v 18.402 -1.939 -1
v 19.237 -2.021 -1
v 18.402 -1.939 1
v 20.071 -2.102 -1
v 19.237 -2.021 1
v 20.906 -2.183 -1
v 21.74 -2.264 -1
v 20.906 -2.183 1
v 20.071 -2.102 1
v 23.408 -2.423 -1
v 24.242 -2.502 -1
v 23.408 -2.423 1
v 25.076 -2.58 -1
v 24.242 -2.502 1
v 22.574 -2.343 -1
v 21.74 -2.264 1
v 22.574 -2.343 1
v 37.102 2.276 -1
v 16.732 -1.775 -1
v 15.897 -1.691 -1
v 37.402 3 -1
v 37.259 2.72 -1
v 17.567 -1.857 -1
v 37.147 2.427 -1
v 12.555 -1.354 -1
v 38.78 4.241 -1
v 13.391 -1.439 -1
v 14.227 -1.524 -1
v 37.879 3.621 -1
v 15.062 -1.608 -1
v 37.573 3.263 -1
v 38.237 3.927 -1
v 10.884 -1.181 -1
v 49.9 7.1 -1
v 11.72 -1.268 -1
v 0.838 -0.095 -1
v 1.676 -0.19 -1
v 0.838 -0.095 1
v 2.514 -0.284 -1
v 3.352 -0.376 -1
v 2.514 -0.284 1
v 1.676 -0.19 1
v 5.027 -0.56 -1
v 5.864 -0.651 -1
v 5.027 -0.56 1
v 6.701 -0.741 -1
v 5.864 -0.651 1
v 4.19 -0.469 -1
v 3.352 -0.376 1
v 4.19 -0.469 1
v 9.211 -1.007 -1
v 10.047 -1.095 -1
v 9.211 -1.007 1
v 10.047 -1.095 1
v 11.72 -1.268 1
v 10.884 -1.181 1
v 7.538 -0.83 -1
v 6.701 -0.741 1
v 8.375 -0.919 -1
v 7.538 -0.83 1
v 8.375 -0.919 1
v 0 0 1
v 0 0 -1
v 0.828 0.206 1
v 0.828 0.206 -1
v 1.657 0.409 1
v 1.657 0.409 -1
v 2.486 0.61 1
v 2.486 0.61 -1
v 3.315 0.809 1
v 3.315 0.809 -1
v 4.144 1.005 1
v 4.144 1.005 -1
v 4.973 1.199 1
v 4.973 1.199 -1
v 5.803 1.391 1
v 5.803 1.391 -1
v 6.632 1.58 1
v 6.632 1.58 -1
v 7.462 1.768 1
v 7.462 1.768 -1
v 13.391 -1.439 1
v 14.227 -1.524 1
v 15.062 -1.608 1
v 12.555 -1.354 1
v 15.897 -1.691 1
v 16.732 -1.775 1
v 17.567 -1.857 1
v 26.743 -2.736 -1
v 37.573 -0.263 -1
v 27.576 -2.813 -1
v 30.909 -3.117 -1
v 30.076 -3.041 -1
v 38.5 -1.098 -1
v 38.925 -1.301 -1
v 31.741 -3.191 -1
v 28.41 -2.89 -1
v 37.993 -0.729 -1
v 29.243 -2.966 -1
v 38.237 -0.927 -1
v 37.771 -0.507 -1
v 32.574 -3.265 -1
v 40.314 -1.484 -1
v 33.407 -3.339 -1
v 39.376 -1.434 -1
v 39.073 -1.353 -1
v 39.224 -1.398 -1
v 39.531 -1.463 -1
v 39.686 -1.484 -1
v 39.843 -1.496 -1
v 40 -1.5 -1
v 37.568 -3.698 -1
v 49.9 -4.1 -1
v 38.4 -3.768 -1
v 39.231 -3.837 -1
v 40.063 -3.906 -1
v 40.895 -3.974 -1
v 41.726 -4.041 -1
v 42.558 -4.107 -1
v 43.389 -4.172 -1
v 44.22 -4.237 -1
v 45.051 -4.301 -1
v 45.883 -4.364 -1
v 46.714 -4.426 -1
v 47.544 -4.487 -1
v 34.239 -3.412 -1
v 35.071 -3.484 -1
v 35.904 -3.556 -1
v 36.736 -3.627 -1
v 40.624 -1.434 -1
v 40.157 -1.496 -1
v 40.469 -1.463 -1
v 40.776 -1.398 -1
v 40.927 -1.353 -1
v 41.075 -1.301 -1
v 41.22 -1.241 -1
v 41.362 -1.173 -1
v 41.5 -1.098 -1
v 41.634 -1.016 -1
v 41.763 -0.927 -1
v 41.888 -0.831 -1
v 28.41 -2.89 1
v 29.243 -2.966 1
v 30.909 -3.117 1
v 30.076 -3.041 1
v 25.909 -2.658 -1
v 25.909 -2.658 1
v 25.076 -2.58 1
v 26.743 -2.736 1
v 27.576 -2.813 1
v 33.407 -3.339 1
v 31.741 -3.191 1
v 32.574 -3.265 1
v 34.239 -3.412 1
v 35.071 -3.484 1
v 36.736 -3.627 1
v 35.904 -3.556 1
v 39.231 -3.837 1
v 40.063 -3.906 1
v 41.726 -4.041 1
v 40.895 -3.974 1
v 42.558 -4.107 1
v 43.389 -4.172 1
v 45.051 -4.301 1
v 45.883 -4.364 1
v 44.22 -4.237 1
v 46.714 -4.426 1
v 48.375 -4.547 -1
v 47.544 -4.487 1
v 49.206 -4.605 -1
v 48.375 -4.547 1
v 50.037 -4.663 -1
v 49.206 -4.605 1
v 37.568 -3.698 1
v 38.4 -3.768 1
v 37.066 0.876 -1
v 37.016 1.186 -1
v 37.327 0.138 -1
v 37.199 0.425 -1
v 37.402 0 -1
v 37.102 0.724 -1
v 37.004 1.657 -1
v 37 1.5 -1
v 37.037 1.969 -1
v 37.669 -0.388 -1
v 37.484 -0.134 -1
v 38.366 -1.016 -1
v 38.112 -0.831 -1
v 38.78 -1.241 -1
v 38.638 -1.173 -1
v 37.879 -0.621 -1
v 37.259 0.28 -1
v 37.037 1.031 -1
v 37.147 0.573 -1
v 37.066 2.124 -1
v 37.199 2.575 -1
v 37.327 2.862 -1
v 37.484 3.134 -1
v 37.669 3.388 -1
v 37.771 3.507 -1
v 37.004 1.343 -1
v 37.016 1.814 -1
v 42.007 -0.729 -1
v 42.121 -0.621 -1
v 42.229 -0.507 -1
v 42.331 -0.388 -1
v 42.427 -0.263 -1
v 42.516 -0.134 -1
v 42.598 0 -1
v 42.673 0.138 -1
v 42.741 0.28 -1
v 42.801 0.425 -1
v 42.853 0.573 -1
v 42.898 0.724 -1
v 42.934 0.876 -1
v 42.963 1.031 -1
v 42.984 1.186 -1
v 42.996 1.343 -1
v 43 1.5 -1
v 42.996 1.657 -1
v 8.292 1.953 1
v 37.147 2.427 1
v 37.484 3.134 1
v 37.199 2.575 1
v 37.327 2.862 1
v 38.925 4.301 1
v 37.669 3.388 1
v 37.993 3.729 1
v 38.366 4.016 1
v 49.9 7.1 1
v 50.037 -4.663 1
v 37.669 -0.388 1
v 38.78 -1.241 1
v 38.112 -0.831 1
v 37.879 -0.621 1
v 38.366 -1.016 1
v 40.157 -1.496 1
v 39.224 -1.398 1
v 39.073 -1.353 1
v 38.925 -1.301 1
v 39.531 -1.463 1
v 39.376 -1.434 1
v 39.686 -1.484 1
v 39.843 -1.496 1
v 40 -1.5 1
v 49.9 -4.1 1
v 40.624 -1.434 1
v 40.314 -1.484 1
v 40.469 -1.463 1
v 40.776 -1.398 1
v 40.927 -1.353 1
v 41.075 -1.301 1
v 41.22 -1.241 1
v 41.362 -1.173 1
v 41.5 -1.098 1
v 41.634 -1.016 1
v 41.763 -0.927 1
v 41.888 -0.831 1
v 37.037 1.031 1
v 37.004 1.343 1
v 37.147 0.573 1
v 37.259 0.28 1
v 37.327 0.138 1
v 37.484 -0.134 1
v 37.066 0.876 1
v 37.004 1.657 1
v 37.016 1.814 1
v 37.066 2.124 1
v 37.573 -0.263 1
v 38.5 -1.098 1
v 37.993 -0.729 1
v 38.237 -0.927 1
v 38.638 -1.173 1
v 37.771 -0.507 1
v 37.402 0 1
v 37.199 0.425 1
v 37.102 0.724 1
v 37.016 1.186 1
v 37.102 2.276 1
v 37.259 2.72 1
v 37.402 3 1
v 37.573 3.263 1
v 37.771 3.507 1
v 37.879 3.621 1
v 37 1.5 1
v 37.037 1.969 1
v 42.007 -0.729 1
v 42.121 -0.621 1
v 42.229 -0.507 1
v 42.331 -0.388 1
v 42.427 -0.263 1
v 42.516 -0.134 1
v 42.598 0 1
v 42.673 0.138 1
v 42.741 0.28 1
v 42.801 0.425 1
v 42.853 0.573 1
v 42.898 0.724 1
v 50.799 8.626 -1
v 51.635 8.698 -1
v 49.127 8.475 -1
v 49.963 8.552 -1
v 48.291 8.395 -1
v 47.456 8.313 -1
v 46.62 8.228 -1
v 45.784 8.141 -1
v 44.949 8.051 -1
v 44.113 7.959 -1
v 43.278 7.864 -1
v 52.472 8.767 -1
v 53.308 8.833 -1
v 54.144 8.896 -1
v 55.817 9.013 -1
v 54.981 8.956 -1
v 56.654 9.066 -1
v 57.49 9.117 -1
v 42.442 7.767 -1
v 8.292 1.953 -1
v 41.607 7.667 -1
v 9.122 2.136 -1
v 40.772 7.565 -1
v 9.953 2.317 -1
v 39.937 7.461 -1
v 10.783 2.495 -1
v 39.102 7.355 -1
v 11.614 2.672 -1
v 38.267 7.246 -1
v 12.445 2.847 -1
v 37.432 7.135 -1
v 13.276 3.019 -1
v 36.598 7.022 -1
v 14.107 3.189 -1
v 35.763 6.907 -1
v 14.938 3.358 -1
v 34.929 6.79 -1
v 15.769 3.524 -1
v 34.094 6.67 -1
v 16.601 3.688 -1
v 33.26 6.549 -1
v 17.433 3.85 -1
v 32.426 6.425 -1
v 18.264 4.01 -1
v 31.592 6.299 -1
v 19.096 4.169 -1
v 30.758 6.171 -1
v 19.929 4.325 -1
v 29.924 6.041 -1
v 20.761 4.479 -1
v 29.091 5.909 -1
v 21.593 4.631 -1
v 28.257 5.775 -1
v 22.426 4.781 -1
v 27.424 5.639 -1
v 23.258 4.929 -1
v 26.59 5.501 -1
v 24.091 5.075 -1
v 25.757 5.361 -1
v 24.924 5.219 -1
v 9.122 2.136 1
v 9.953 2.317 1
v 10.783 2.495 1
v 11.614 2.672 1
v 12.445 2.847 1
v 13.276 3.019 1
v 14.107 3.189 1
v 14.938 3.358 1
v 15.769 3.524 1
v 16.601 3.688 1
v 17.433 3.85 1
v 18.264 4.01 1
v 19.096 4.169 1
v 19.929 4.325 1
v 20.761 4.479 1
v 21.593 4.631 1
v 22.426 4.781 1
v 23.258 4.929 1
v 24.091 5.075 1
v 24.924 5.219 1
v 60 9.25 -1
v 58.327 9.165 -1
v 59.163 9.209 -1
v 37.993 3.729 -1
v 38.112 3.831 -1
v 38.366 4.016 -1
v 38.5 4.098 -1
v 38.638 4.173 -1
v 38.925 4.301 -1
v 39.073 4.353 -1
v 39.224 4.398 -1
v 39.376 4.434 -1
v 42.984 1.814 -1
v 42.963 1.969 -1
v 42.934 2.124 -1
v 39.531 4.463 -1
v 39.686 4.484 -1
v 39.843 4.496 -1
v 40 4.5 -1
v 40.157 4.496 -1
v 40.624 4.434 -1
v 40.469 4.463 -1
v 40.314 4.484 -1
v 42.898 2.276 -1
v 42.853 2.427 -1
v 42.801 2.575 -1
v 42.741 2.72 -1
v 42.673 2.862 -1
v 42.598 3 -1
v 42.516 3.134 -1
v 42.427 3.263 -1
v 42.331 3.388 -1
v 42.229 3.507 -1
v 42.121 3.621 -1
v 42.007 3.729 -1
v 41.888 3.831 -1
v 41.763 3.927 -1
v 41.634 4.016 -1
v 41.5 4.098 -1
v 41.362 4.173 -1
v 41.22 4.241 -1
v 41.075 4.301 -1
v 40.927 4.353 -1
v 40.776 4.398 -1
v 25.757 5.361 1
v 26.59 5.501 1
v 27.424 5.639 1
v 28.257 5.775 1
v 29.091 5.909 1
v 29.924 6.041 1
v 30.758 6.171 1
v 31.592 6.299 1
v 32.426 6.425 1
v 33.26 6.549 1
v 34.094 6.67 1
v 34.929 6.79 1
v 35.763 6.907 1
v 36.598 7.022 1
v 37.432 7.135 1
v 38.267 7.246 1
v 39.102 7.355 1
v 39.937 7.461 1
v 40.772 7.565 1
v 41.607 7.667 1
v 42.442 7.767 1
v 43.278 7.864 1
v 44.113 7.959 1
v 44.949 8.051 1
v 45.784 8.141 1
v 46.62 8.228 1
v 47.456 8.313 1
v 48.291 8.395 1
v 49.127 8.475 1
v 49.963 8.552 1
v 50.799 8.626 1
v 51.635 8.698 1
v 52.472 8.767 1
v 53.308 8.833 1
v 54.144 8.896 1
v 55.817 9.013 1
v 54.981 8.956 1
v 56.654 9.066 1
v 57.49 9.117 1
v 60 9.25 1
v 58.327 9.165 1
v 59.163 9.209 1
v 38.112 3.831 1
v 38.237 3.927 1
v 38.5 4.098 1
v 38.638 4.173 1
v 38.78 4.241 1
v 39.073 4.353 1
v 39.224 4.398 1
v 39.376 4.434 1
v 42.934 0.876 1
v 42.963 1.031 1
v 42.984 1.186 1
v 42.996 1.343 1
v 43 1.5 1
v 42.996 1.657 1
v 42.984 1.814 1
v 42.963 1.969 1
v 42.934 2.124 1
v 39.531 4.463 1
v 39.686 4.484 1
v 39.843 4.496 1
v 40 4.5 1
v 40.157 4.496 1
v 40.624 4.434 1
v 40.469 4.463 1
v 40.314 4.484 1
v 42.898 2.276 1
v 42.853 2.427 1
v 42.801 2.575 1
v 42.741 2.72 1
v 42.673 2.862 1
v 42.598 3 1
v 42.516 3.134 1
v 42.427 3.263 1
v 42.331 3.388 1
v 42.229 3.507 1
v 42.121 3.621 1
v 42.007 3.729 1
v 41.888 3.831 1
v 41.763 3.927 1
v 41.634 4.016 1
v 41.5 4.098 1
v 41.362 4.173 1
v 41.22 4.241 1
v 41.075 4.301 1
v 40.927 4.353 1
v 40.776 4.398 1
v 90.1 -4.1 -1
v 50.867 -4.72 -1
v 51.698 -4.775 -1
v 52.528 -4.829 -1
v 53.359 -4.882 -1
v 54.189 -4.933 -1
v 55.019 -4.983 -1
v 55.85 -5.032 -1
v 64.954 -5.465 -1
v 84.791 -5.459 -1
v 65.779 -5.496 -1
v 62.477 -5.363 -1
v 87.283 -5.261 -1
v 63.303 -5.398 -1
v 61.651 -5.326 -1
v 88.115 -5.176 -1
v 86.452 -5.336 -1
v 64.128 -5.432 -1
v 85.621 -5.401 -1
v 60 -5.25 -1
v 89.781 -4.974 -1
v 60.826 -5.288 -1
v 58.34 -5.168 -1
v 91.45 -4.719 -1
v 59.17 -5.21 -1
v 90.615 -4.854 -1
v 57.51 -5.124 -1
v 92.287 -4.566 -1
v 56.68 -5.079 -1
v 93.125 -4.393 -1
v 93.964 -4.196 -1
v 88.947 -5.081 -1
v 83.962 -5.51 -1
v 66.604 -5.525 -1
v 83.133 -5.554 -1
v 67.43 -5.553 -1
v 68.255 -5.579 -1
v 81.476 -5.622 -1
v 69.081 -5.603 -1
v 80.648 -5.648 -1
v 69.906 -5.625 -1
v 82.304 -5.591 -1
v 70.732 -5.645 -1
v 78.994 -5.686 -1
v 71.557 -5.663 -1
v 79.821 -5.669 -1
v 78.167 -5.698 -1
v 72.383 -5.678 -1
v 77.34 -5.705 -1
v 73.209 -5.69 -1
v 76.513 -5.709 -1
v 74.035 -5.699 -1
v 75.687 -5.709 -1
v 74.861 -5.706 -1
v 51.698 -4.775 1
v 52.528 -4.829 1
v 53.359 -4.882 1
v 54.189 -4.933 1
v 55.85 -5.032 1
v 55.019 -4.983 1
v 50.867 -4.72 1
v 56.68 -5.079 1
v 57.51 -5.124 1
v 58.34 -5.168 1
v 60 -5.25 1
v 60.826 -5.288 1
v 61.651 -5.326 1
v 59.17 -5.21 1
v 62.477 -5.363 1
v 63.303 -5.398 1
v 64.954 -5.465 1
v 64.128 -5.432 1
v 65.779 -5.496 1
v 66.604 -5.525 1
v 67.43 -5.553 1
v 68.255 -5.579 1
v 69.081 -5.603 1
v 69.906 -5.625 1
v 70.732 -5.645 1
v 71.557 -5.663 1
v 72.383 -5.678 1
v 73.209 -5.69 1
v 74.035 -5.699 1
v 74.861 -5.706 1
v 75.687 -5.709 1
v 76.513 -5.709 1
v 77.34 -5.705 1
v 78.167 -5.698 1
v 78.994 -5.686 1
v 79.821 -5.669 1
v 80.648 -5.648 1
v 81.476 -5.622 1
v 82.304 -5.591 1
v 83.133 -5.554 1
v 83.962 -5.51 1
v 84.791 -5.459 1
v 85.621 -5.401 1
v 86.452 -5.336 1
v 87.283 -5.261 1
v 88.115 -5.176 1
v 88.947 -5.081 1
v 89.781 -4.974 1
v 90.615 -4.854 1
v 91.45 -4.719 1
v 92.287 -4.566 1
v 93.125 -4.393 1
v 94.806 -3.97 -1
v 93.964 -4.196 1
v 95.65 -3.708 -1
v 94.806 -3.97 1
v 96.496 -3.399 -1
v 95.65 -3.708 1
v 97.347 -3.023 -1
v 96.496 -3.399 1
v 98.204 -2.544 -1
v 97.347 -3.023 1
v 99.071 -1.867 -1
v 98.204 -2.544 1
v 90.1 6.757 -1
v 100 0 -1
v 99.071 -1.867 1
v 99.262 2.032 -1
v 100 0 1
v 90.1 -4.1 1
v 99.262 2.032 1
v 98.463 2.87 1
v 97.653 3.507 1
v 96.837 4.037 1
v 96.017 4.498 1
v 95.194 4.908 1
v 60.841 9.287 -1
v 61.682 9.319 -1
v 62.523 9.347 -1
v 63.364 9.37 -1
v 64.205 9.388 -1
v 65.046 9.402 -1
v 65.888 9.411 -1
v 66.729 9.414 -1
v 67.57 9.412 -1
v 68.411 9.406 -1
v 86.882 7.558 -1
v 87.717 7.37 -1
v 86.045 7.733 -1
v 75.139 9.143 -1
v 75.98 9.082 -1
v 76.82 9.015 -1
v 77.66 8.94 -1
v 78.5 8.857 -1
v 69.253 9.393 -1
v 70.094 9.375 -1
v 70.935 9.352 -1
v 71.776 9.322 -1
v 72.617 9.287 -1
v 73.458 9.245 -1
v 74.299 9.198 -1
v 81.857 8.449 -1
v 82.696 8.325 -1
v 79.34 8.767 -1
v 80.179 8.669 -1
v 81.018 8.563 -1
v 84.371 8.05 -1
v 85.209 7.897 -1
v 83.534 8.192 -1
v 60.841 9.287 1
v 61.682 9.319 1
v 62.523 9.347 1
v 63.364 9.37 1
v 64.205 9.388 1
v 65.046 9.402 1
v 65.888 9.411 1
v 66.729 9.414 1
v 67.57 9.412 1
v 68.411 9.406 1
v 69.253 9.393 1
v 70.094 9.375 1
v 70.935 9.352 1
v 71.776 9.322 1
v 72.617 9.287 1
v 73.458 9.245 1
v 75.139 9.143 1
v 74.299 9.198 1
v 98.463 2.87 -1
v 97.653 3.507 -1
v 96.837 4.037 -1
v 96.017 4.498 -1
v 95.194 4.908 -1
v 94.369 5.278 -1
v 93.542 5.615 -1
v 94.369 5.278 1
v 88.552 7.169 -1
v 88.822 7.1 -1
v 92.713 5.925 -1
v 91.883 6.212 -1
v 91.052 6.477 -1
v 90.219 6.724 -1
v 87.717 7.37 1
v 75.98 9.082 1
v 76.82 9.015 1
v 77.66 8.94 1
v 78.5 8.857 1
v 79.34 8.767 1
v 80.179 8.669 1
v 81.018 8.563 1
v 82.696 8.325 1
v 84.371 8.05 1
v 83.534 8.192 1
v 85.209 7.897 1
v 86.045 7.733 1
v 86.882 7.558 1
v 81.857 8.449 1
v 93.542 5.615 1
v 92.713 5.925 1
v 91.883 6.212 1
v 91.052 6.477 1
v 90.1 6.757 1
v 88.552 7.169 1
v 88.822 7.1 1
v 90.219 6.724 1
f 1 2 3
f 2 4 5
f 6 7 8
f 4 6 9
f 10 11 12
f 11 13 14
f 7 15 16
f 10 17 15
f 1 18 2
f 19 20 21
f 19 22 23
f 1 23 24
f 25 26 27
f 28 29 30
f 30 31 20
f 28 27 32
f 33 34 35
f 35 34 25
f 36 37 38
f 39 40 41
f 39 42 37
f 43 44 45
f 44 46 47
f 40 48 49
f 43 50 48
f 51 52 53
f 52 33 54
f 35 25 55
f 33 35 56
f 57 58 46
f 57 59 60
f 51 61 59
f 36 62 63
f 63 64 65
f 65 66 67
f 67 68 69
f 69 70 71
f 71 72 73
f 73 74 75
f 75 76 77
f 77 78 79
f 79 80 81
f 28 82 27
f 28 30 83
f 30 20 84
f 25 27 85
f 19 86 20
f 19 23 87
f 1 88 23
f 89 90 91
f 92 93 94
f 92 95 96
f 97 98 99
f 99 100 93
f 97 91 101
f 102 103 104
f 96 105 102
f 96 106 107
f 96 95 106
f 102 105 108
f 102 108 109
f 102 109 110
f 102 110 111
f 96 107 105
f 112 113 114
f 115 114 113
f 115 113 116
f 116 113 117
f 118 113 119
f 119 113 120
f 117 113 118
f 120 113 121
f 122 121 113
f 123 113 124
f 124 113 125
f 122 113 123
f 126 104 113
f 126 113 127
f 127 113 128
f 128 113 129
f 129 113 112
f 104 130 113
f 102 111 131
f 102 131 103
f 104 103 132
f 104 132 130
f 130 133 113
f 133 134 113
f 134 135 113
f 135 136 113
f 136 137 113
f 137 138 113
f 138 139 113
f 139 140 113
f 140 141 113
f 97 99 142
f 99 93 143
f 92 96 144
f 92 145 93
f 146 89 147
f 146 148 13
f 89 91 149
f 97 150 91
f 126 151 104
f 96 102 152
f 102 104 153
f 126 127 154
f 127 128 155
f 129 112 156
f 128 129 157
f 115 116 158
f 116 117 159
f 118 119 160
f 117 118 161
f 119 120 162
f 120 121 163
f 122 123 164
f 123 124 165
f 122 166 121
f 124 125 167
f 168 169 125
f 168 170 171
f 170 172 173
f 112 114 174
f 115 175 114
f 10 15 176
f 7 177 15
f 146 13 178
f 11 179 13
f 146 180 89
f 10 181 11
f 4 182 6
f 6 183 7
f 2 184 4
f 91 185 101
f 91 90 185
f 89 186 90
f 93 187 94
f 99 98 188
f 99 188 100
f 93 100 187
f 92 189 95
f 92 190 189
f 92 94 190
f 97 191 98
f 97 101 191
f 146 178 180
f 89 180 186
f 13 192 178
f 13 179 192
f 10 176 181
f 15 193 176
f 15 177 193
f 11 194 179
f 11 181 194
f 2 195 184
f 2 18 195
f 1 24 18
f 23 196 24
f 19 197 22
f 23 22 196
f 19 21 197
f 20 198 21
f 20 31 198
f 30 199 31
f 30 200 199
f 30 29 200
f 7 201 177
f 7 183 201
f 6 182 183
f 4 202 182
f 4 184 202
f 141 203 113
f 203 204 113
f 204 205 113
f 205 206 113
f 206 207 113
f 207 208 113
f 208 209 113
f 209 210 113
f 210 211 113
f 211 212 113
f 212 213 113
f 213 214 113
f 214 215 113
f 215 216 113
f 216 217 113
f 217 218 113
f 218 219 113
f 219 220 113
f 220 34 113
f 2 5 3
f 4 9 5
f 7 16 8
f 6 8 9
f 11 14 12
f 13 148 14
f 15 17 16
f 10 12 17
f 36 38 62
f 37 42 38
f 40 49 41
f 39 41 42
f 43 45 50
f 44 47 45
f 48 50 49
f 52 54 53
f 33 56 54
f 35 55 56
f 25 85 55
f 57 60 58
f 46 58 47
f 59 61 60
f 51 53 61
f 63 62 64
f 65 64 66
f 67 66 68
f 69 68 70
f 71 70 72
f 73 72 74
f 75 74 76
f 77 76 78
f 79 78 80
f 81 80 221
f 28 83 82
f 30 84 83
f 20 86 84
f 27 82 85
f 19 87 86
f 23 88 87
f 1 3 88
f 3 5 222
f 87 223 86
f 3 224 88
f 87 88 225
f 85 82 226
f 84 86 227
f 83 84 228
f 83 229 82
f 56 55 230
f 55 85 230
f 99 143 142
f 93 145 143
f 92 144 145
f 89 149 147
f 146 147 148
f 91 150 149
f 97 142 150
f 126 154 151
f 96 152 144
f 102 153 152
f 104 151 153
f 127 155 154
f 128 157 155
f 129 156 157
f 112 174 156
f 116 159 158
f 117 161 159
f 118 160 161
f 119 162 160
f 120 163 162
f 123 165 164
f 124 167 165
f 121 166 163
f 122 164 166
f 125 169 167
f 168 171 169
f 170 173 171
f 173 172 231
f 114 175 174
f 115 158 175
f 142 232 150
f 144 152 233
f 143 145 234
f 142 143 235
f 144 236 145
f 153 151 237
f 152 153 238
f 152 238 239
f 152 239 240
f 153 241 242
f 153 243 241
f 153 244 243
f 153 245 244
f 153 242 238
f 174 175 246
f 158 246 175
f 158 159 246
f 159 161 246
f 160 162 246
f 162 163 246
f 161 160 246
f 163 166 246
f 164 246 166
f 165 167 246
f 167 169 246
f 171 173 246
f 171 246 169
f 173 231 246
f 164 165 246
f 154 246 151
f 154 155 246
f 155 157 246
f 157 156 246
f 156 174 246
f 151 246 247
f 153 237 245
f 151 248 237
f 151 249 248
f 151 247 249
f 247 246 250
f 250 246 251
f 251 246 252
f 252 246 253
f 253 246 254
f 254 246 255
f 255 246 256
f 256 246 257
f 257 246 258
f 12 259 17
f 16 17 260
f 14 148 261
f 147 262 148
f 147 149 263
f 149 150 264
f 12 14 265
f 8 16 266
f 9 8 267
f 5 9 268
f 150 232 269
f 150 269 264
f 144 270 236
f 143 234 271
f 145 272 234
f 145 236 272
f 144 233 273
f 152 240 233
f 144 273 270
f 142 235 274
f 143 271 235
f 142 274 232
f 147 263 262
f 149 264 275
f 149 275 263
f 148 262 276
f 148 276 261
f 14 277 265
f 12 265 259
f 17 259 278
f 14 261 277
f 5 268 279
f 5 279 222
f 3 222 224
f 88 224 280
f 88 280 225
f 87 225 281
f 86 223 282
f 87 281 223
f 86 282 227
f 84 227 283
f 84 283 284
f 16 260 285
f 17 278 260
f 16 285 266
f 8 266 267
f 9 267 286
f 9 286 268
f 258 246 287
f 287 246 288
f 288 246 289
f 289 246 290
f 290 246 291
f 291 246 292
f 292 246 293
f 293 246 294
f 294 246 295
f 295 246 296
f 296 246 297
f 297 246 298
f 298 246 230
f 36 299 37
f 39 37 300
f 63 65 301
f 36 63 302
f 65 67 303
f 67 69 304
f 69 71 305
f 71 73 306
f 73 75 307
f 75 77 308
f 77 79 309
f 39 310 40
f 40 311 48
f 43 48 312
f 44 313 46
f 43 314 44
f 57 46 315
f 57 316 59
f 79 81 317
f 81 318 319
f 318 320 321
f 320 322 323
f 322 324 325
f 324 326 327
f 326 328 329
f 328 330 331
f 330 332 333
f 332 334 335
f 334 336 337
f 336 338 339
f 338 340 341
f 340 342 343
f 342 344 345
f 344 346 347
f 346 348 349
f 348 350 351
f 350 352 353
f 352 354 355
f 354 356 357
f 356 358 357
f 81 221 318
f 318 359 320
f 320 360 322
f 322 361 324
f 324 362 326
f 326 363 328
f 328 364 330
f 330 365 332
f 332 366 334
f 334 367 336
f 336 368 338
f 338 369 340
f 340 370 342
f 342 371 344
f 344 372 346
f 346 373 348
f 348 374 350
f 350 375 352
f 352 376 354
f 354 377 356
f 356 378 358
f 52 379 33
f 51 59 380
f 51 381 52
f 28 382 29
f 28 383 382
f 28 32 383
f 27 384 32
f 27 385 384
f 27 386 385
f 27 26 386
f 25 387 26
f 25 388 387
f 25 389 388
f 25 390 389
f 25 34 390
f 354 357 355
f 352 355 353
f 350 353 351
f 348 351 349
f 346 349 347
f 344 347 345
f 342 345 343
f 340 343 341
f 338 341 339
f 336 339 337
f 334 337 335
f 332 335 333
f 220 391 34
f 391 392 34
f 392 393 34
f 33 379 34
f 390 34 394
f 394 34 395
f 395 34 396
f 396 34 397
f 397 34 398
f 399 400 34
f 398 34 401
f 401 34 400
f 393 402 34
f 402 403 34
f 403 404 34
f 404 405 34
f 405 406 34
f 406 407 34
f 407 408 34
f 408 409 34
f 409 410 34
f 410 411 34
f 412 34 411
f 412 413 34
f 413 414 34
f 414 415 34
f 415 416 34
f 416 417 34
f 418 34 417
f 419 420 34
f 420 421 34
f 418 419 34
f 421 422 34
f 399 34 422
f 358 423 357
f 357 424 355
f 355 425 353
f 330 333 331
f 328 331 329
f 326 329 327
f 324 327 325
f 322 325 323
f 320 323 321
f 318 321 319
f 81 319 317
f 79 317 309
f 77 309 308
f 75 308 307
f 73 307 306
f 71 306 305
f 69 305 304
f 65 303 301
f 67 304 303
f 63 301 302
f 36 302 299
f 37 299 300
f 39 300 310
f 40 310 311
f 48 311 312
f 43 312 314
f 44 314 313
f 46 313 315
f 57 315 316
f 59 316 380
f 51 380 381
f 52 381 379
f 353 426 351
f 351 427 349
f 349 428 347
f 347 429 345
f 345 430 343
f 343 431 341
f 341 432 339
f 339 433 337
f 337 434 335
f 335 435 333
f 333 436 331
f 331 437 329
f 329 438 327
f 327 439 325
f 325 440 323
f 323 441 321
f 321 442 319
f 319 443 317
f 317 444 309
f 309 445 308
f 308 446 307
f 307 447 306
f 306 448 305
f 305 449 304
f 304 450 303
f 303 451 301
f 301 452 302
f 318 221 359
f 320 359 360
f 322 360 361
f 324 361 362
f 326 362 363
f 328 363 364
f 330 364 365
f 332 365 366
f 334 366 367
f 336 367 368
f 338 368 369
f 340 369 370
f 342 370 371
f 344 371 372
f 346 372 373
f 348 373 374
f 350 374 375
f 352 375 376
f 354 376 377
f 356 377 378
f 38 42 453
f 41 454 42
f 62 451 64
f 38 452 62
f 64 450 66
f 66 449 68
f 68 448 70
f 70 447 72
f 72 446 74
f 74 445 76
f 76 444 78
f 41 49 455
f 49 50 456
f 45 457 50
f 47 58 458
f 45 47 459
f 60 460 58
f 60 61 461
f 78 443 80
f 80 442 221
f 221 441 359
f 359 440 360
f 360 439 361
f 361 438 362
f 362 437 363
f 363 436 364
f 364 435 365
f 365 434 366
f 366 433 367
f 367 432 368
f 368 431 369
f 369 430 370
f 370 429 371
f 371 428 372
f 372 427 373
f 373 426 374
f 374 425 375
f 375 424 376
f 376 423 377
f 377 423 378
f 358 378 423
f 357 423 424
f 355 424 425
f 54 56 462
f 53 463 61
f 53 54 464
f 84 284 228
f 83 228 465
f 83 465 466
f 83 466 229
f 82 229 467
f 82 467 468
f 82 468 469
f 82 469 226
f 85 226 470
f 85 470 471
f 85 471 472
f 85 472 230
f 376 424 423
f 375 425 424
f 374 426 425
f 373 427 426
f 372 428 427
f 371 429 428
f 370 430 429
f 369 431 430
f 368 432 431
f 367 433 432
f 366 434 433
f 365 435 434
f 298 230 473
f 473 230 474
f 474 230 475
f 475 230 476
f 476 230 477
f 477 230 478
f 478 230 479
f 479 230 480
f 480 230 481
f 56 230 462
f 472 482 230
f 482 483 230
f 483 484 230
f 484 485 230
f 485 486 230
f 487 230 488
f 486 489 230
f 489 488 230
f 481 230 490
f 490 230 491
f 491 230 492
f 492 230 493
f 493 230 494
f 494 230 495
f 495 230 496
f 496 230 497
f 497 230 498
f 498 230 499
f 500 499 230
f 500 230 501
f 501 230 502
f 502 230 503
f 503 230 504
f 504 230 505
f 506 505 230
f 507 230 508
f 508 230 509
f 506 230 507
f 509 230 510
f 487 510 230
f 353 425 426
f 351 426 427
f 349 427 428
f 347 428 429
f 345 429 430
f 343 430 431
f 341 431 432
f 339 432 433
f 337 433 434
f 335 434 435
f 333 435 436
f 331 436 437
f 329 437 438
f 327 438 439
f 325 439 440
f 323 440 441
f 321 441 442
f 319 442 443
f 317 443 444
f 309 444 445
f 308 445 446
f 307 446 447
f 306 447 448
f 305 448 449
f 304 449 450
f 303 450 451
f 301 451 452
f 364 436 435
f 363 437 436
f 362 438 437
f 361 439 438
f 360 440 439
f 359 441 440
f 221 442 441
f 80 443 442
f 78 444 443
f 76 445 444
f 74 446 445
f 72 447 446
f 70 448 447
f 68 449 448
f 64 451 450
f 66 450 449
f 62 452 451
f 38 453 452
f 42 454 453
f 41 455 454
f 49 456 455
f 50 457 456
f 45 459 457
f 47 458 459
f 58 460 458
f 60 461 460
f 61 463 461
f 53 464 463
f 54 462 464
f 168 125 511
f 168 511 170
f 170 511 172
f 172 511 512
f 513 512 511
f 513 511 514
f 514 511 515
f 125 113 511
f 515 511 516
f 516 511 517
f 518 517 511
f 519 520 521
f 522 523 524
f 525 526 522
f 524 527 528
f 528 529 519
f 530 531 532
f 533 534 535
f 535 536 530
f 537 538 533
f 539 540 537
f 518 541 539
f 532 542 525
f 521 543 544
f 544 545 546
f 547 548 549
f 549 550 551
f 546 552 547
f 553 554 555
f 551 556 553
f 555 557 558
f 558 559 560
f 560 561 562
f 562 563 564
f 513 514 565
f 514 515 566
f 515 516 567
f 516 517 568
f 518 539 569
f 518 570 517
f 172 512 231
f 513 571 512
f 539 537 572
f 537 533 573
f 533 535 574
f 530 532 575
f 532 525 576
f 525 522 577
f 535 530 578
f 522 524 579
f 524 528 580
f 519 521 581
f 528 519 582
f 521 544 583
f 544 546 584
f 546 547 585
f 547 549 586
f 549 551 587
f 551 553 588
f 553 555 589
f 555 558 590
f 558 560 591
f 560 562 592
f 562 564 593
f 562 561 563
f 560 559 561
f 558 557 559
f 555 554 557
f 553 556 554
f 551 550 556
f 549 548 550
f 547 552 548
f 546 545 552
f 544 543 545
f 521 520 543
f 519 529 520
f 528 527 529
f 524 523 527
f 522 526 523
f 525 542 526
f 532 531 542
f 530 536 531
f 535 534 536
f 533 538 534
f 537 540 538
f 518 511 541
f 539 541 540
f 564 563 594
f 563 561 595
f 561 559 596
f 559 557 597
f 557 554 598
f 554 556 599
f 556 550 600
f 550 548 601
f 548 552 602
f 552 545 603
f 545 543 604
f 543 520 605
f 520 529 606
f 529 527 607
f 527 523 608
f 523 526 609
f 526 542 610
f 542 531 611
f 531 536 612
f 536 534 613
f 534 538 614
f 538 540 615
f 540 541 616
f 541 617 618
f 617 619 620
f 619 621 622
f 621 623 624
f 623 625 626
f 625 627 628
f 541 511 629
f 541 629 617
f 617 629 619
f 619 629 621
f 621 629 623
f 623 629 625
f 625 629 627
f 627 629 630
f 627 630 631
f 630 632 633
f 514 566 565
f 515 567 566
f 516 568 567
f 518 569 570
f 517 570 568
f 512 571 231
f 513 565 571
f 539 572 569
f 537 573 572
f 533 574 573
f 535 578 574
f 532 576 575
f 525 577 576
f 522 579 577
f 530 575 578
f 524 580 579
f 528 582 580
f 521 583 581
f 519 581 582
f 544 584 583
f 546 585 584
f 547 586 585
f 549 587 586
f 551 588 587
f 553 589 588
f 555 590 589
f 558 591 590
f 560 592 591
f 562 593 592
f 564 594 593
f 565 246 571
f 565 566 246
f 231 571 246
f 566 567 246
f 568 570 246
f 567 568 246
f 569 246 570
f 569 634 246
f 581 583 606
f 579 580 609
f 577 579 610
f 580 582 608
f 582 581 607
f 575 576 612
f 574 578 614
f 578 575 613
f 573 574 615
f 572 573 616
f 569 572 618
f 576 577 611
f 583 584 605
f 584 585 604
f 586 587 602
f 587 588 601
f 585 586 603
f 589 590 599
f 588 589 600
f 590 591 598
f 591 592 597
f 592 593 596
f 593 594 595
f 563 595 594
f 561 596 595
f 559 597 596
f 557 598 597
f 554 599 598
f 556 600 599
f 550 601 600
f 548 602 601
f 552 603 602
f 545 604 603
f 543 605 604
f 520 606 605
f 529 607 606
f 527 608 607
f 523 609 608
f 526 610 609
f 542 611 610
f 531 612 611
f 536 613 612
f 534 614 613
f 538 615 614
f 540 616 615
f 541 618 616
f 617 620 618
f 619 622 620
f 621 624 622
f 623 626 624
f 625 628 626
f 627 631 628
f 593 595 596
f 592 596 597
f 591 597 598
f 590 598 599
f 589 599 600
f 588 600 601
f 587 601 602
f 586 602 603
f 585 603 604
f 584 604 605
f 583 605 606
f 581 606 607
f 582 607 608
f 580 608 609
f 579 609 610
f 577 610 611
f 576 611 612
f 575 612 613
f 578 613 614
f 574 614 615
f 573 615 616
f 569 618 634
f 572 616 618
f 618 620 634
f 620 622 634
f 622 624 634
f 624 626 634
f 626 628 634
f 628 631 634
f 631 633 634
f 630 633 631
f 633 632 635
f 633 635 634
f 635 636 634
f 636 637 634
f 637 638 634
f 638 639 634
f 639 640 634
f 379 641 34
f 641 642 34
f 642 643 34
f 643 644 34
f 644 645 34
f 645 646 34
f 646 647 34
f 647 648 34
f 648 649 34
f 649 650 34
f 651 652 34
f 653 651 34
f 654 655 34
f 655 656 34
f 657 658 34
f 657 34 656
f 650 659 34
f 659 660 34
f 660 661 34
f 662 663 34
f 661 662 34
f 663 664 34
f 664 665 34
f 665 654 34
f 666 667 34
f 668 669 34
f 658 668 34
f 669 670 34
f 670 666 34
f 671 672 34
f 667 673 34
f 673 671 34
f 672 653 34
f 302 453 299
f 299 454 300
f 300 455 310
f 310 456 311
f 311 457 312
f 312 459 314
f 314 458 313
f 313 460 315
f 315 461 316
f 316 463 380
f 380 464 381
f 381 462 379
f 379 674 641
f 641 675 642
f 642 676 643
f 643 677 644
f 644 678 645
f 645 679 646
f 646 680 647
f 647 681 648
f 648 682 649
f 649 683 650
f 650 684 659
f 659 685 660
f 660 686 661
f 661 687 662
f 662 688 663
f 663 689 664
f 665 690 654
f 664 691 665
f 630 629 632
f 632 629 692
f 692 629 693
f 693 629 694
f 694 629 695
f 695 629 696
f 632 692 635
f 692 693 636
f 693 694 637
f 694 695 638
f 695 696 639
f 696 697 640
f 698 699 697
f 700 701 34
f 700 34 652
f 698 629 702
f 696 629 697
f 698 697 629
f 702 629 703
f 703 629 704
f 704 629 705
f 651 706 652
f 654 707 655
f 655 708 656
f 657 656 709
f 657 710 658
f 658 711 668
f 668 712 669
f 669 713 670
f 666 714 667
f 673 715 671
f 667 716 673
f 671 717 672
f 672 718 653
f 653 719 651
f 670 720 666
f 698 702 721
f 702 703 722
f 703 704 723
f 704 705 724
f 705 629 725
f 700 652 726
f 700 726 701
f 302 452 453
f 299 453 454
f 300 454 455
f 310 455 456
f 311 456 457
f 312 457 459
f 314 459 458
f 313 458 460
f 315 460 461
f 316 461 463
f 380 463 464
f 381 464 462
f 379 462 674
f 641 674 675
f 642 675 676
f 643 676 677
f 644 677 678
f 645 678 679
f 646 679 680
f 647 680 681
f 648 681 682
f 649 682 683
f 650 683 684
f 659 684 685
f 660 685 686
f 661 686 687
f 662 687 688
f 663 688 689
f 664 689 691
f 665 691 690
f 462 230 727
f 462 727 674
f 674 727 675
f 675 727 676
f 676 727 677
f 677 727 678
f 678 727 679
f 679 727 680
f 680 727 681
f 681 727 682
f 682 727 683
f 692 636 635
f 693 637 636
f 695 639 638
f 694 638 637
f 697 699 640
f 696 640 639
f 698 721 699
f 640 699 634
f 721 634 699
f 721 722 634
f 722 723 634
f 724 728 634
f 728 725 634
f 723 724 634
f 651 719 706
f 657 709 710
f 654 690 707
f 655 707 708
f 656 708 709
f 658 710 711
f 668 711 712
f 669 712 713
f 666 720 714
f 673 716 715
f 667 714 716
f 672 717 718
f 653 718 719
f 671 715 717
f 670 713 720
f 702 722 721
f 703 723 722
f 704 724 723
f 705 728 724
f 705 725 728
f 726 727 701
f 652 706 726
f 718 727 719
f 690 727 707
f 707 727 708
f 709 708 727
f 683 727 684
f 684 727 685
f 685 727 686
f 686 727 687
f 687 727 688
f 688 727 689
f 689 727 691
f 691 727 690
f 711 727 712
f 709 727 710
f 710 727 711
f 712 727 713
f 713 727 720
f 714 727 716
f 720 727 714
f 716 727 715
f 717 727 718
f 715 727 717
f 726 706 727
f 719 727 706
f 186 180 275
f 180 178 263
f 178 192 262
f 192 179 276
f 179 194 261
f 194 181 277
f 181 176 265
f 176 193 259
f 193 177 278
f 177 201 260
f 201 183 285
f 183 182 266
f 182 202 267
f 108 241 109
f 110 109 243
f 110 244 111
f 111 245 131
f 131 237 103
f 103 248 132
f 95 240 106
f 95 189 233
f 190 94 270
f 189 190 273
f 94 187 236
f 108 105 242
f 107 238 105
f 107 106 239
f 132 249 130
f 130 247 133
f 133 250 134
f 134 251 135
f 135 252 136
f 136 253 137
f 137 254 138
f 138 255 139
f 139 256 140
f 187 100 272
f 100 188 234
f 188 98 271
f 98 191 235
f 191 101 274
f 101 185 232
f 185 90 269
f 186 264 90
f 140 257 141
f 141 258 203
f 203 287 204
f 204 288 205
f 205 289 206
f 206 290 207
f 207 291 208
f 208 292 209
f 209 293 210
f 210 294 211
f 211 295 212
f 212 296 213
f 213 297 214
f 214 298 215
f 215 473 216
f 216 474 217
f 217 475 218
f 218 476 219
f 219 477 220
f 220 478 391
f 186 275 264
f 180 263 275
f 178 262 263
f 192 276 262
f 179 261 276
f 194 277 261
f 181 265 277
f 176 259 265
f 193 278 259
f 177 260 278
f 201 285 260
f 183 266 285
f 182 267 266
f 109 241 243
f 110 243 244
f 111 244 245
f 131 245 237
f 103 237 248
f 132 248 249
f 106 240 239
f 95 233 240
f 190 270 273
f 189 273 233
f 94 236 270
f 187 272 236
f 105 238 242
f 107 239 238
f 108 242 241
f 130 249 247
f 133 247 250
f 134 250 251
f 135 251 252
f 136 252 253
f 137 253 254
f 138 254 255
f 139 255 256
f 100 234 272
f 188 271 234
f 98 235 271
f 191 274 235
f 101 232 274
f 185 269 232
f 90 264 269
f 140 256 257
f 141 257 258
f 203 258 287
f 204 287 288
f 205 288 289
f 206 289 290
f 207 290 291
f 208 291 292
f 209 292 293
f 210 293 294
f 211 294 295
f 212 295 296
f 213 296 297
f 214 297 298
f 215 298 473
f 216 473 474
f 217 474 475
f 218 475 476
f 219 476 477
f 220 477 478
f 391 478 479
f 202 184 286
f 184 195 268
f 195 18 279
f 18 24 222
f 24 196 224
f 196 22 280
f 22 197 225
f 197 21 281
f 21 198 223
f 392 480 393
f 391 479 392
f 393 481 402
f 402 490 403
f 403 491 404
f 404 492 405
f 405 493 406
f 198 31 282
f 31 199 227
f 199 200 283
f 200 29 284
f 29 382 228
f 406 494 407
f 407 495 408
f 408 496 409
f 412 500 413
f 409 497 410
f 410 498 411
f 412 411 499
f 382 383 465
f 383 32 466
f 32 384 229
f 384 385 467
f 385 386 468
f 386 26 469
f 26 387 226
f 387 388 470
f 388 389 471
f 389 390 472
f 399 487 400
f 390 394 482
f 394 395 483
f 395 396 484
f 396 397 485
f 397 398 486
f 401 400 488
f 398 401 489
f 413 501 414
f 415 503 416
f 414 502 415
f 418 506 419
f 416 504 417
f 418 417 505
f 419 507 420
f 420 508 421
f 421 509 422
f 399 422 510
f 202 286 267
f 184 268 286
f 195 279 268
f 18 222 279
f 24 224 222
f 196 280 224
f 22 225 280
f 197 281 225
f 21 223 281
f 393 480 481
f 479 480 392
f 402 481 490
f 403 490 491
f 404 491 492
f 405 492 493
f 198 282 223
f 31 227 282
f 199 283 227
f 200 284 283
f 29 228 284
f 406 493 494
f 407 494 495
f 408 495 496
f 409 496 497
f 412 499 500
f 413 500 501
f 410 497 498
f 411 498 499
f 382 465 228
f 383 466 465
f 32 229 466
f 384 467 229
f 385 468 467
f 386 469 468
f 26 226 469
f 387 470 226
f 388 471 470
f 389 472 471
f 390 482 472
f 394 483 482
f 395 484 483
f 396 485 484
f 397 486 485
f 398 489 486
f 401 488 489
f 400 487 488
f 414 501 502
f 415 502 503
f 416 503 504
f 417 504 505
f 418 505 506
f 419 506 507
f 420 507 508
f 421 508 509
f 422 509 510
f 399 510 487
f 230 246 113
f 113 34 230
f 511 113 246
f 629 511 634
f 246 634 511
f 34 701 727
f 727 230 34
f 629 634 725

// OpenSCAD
// file: design_params.scad
// ============================================================
// STARLING SHARED DESIGN PARAMETERS — single source of truth for
// every dimension two parts must agree on.
//
// Consumers:
//   - every part in cad/ does        include <design_params.scad>
//   - parts in cad/calibration/ do   include <../design_params.scad>
//   - scripts/check_params.py FAILS the build if any of these names
//     is re-declared anywhere else — change values HERE only.
//
// Keep this file to simple `name = value;` lines so the tooling can
// parse it. One-off experiments: `openscad -D name=value` beats the
// include, no need to edit this file.
// ============================================================

// --- The paper tube (bought part, consumable) ---
tube_od     = 52.95;   // measured tube OD — verify with cad/calibration/tube_fit_ring.scad
tube_wall   = 3;       // paper wall thickness (measure your tube)
tube_length = 540;

// --- Printed-part fits ---
sleeve_clearance = 0;  // added to every sleeve bore diameter; tune via the fit ring
fit_tol          = 0.2; // clearance for printed slots/pockets
sleeve_wall      = 3;  // wall thickness of printed sleeves

// --- Wing spar chain (rib holes = adapter sockets = carbon rods) ---
spar_rod_d    = 6;     // carbon rod diameter
spar_hole_d   = 6.2;   // printed hole for that rod
spar_spacing  = 20;    // chordwise distance between the two spars
spar_y_offset = 1.5;   // spar line sits this far above the rib chord line

// --- Wing geometry ---
rib_chord     = 100;
naca_code     = 2415;  // cambered lifting section
rib_thickness = 2;

// --- Wing adapter <-> root rib interface ---
wing_tab_thickness = 11; // adapter tab; the root-rib window = this + fit_tol
wing_tab_span      = 15; // how far the tab reaches out from the sleeve
adapter_length     = 40; // sleeve length = tab chord extent

// --- Stations along the tube (assembly; wing slides for CG trim) ---
wing_station       = 300; // wing adapter position, measured from the motor face
tail_tube_stop     = 54;  // tube bottoms out here inside the tail sleeve (rim top)
nose_sleeve_length = 20;  // how far the nose cone slides over the tube

// --- Tail servos (9 g / SG90 class) ---
servo_body   = [23, 12.2]; // [length, width]
servo_flange = [32, 12.2];

// --- Motor (22xx class, rear pusher) ---
motor_shaft_hole_d = 10;
motor_screw_hole_d = 4;
motor_pattern_x    = 16;  // screw pattern
motor_pattern_y    = 19;
// file: wing_rib.scad
// ==============================================================================
//   WING RIB — printed NACA rib for the foam-skinned, carbon-spar wing.
//
//   The foam-board skin WRAPS over the ribs: a 5 mm skin cannot be inlaid
//   into a ~15 mm thick section, so there are deliberately no skin slots —
//   the rib profile is the wing's inner mold line.
//
//   wing_rib_with_cutouts() — standard rib: two spar holes + a cable hole
//   wing_rib_root()         — root rib: adds the through-window that slides
//                             over the wing-adapter tab (print 1 per panel,
//                             see cad/wing_rib_root.scad)
// ==============================================================================

include <design_params.scad>

$fn = 120;

// ==============================================================================
//   NACA AIRFOIL FUNCTIONS
//   Plain variables only — no $-specials: top-level $var assignments are
//   invisible to use<> consumers and fall back silently. That bug shipped
//   once; don't reintroduce it.
// ==============================================================================

airfoil_fn = 120; // points along the chord

// Half-thickness of a symmetric NACA section; 0.1036 closes the TE cleanly
function foil_y(x, c, t) =
    (5 * t * c) * ( 0.2969 * sqrt(x / c) - 0.1260 * (x / c)
                  - 0.3516 * pow(x / c, 2) + 0.2843 * pow(x / c, 3)
                  - 0.1036 * pow(x / c, 4) );

// Camber line
function camber(x, c, m, p) = ( x <= (p * c) ?
    ( ( (c * m) / pow(p, 2) )       * ( ( 2 * p * (x / c) ) - pow(x / c, 2) ) ) :
    ( ( (c * m) / pow(1 - p, 2) )   * ( (1 - (2 * p)) + ( 2 * p * (x / c) ) - pow(x / c, 2) ) ) );

// Angle of the camber line
function theta(x, c, m, p) = ( x <= (p * c) ?
    atan( ( m / pow(p, 2) )     * (p - (x / c)) ) :
    atan( ( m / pow(1 - p, 2) ) * (p - (x / c)) ) );

// Upper/lower surface coordinates
function camber_y(x, c, t, m, p, upper=true) = ( upper ?
    ( camber(x, c, m, p) + (foil_y(x, c, t) * cos(theta(x, c, m, p))) ) :
    ( camber(x, c, m, p) - (foil_y(x, c, t) * cos(theta(x, c, m, p))) ) );

function camber_x(x, c, t, m, p, upper=true) = ( upper ?
    ( x - (foil_y(x, c, t) * sin(theta(x, c, m, p))) ) :
    ( x + (foil_y(x, c, t) * sin(theta(x, c, m, p))) ) );

module airfoil_poly(c = 100, naca = 0015) {
    res = c / airfoil_fn;
    t = (naca % 100) / 100;              // thickness/chord
    m = floor(naca / 1000) / 100;        // max camber
    p = (floor(naca / 100) % 10) / 10;   // position of max camber

    points_u = ( m == 0 || p == 0 ) ?
        [for (i = [0:res:c]) [i, foil_y(i, c, t)]] :
        [for (i = [0:res:c]) [camber_x(i, c, t, m, p), camber_y(i, c, t, m, p)]];

    points_l = ( m == 0 || p == 0 ) ?
        [for (i = [c:-res:0]) [i, -foil_y(i, c, t)]] :
        [for (i = [c:-res:0]) [camber_x(i, c, t, m, p, upper=false), camber_y(i, c, t, m, p, upper=false)]];

    polygon(concat(points_u, points_l));
}

// ==============================================================================
//   RIB-LOCAL CONFIGURATION (part-internal, not an interface)
// ==============================================================================

spar_x_pos = 0.4;             // rear spar at 40% chord (front one lands at 20%)
cable_hole_diameter = 6;
cable_hole_x_pos = 0.6;       // fraction of chord
cable_hole_y_offset = 1.5;

// ==============================================================================
//   RIB MODULES
// ==============================================================================

module wing_rib_with_cutouts() {
    spar_x_offset = rib_chord * (1 - spar_x_pos);
    cable_hole_x_offset = rib_chord * (1 - cable_hole_x_pos);

    difference() {
        translate([rib_chord, 0, 0])
            rotate([0, 180, 0])
                linear_extrude(height = rib_thickness, center = true)
                    airfoil_poly(c = rib_chord, naca = naca_code);

        for (dx = [0, spar_spacing])
            translate([spar_x_offset + dx, spar_y_offset, 0])
                cylinder(h = rib_thickness * 2 + 0.2, d = spar_hole_d, center = true);

        translate([cable_hole_x_offset, cable_hole_y_offset, 0])
            cylinder(h = rib_thickness * 2 + 0.2, d = cable_hole_diameter, center = true);
    }
}

// Root rib: a through-window, centered on the spar holes, that slides over
// the wing-adapter tab — so the rod sockets and rib spar holes line up by
// construction. The window may nick the upper surface near its forward edge:
// the tab stands slightly proud of the thin front of the profile there, and
// the rib is glued to the tab anyway.
module wing_rib_root() {
    window_l = adapter_length + fit_tol;
    window_h = wing_tab_thickness + fit_tol;
    window_center_x = rib_chord * (1 - spar_x_pos) + spar_spacing / 2;

    difference() {
        wing_rib_with_cutouts();
        translate([window_center_x - window_l / 2, spar_y_offset - window_h / 2, -rib_thickness])
            cube([window_l, window_h, rib_thickness * 2]);
    }
}

wing_rib_with_cutouts();
// main file
// ROOT RIB — print ONE per wing panel. Same as the standard rib plus the
// through-window that slides over the wing-adapter tab. Geometry lives in
// wing_rib.scad; this file only exists so regen_all.py exports its STL.

use <wing_rib.scad>

$fn = 120;
wing_rib_root();
